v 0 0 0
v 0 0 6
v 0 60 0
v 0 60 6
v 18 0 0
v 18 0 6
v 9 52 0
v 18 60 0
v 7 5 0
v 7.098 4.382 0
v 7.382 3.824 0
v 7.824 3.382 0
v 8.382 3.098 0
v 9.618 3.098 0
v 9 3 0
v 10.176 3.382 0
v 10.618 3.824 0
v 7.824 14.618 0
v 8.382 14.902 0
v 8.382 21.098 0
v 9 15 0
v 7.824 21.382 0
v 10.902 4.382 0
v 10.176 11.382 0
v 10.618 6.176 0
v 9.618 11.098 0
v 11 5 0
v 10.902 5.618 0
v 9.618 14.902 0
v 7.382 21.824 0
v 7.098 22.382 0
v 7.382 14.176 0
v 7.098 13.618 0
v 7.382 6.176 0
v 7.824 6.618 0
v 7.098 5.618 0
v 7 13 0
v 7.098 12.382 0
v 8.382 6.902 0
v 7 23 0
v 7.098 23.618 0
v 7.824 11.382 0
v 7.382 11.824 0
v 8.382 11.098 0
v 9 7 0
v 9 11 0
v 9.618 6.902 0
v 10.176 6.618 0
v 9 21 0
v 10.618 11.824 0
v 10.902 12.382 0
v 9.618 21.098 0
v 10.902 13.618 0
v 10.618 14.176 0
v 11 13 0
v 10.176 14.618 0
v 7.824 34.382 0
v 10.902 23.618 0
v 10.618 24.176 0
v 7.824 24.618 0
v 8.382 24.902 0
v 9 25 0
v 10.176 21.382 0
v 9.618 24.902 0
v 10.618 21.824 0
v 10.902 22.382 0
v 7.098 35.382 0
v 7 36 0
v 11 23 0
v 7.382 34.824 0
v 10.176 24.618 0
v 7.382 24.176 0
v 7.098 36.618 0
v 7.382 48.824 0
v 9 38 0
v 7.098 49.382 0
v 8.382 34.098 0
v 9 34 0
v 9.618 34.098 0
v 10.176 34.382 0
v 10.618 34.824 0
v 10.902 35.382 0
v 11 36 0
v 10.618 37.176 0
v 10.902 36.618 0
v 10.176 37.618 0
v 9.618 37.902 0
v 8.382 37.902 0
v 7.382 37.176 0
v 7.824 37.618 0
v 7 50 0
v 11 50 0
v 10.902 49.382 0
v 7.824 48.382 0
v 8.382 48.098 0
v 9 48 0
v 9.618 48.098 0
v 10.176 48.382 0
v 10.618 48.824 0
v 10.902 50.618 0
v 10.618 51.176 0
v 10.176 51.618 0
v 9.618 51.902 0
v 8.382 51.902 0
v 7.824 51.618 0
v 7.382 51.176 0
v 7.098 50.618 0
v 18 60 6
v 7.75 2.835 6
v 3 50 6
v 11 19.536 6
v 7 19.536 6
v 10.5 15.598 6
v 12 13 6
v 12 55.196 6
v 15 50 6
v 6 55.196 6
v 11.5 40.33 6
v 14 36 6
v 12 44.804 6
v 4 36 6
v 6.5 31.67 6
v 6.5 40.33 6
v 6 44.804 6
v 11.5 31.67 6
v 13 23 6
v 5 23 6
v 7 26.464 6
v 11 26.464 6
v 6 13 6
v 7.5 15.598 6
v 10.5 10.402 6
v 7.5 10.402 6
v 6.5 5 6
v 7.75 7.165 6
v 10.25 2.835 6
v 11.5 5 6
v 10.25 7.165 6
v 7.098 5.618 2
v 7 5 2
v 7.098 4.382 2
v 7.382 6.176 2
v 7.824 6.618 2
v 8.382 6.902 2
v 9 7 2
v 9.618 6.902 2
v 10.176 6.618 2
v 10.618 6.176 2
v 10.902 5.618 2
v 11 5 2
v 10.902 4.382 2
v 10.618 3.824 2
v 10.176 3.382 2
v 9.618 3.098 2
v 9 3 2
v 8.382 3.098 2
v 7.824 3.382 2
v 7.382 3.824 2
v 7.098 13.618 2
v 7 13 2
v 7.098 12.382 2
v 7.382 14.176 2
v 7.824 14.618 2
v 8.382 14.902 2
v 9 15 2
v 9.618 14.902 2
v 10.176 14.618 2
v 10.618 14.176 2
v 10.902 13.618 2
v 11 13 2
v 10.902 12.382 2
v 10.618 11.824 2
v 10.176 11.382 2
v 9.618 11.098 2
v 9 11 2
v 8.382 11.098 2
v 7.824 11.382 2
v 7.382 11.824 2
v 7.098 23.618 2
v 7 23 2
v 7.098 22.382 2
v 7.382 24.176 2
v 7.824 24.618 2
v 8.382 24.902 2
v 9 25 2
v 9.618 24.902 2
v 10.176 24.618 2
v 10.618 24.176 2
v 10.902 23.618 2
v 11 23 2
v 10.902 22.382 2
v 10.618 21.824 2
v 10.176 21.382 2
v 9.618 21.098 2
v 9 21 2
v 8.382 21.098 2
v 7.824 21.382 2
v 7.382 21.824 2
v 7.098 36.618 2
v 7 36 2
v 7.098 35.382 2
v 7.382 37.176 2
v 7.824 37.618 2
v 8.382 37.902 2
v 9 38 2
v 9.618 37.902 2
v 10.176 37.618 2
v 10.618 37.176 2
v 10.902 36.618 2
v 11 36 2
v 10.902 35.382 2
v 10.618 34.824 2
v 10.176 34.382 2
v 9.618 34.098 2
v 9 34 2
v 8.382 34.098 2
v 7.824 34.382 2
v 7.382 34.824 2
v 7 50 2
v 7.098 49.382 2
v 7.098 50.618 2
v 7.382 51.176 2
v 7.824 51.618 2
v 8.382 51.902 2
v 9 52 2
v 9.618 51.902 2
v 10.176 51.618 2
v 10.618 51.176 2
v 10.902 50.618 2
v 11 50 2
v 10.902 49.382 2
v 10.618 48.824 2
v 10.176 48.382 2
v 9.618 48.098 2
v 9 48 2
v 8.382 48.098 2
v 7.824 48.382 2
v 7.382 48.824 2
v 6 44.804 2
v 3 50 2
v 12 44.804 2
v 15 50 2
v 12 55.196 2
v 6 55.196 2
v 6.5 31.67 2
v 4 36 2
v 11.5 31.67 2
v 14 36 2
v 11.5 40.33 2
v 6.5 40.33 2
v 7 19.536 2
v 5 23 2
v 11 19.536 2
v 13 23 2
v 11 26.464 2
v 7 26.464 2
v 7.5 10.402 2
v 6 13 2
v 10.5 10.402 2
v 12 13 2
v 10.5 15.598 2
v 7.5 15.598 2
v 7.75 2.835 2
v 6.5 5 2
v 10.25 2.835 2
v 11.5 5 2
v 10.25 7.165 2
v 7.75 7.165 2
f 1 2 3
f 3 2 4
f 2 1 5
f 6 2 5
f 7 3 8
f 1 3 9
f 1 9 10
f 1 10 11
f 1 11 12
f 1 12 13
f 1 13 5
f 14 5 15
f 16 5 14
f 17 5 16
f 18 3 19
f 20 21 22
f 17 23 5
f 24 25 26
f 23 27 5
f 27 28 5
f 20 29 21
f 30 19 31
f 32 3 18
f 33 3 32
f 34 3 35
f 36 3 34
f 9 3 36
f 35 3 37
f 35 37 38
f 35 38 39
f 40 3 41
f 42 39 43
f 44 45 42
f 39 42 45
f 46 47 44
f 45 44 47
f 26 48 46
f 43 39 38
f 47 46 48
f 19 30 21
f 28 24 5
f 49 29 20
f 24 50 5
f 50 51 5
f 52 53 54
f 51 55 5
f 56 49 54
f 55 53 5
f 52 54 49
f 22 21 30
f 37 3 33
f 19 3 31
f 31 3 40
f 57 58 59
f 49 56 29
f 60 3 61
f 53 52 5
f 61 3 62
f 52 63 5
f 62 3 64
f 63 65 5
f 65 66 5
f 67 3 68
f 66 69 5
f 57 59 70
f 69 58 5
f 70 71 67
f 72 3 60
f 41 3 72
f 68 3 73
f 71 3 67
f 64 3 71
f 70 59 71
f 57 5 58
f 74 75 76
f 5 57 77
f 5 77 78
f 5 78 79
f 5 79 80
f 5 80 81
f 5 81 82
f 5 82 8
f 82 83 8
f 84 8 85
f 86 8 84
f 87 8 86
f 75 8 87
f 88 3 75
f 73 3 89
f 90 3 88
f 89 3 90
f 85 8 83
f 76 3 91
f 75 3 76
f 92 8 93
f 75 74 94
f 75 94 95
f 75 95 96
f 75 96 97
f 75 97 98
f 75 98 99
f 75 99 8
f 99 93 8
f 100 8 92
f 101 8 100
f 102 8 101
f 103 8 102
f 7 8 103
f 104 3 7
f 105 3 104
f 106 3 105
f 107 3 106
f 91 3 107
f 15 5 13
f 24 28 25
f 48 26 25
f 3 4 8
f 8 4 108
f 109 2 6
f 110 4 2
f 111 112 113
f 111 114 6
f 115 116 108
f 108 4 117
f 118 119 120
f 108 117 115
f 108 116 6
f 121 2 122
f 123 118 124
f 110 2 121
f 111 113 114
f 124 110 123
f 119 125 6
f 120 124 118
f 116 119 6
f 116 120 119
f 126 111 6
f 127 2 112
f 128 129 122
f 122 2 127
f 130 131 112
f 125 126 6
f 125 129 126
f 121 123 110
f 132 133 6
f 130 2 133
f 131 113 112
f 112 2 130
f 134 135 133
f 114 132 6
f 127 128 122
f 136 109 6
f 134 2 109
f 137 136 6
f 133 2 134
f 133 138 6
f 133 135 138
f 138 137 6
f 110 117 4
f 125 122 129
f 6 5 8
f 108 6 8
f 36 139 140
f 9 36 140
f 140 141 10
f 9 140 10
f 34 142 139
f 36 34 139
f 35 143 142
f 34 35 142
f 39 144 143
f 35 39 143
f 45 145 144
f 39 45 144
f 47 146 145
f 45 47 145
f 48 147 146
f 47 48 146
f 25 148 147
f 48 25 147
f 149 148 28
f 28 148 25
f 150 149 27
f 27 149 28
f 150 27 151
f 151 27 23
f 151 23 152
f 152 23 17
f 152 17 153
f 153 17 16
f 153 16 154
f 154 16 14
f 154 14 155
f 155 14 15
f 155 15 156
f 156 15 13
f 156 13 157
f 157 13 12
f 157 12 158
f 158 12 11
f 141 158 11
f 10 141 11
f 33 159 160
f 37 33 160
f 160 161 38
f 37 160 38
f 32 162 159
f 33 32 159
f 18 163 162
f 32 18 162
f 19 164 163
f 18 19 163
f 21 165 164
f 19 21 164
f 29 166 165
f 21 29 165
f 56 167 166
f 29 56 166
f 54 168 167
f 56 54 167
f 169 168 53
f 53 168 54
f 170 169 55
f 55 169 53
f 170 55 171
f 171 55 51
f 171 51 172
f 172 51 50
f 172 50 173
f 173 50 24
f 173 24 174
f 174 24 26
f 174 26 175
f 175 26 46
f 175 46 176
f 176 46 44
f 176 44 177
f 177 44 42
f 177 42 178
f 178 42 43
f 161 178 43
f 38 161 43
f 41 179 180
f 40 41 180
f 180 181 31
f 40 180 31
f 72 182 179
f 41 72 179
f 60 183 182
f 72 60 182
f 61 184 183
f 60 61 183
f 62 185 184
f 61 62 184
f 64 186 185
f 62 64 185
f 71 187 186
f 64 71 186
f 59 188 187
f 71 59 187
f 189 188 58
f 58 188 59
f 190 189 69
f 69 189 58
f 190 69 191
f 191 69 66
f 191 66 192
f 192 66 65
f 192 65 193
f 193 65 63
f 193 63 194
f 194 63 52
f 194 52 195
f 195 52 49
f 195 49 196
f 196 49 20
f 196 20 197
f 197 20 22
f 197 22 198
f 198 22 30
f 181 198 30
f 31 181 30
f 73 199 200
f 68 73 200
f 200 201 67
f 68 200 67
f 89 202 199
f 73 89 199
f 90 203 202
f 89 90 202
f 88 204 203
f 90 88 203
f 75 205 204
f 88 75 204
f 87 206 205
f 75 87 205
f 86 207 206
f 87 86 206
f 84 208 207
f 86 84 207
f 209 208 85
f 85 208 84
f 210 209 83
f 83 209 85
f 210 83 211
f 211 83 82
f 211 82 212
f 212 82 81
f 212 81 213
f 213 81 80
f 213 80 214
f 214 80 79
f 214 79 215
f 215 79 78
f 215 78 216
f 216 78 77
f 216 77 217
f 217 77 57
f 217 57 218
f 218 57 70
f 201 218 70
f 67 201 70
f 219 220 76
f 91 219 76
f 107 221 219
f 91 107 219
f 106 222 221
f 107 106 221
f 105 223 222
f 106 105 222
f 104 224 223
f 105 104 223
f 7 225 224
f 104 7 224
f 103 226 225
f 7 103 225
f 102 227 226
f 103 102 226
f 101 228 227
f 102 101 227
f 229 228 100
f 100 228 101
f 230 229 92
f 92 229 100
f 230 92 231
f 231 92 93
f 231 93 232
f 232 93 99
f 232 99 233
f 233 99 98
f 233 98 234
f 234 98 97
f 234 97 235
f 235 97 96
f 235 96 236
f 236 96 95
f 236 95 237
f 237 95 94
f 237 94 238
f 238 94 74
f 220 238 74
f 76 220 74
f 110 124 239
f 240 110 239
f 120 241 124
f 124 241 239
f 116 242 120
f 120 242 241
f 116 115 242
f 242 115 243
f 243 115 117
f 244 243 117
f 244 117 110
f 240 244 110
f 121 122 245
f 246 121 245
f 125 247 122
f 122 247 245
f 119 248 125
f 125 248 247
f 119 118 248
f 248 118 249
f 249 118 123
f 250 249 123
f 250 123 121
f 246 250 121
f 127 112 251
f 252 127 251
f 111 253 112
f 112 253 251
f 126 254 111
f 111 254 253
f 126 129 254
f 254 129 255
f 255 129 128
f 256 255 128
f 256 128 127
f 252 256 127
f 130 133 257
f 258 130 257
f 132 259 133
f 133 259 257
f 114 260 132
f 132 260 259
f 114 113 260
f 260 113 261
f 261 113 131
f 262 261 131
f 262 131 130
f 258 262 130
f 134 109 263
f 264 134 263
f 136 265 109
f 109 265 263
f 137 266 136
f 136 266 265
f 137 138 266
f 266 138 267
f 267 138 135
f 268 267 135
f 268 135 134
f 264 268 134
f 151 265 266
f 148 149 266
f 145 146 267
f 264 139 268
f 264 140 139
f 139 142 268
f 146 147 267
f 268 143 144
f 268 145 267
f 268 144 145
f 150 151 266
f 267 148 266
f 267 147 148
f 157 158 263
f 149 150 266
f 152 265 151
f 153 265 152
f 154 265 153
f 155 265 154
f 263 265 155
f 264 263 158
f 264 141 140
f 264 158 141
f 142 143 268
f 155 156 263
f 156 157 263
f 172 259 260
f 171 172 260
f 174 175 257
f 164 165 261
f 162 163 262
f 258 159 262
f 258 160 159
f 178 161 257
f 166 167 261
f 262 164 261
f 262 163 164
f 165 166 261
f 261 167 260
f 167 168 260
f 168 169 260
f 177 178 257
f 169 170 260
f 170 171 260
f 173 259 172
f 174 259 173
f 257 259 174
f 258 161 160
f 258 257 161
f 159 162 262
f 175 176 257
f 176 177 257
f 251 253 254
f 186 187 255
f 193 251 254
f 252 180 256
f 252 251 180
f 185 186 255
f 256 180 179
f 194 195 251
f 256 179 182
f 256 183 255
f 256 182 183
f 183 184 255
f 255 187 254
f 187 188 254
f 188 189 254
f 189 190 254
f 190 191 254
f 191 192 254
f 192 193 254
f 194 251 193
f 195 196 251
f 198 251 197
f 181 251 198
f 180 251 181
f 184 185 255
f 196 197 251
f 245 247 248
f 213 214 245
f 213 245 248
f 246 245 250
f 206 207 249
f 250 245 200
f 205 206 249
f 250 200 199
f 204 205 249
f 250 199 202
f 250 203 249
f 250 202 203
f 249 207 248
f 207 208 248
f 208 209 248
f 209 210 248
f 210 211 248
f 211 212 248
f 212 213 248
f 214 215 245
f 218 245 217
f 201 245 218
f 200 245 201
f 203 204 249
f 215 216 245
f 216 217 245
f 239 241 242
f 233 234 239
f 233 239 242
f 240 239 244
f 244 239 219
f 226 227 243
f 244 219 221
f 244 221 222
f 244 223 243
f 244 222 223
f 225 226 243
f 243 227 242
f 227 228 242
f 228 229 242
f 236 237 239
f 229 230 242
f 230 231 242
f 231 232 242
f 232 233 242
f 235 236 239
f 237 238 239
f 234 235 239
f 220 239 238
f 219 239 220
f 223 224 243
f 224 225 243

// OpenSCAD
module hex_hole(h_trap,h_hole,r_trap,r_hole,x,y,z)
{
translate([x,y,z+h_hole])
{
	cylinder(h = h_trap, r = r_trap, $fn = 6);
}
translate([x,y,z])
{
	cylinder(h = h_hole, r = r_hole, $fn = 20);
}
}

width=18;
length=60;
h_hole=2;
h_trap=4;
r_trap=3;
r_hole=2;
spacer=4;
explode=false;
if (explode)
{
cube(size = [width,length,h_hole+h_trap], center = false);
translate([0,0,10]){
hex_hole(h_trap,h_hole,r_trap,r_hole,width/2,4,0);
hex_hole(h_trap,h_hole,r_trap+1,r_hole,width/2,12,0);
hex_hole(h_trap,h_hole,r_trap+2,r_hole,width/2,22,0);
hex_hole(h_trap,h_hole,r_trap+3,r_hole,width/2,33,0);}
}
else
{
difference() {
cube(size = [width,length,h_hole+h_trap], center = false);
hex_hole(h_trap,h_hole,r_trap-0.5,r_hole,width/2,5,0);
hex_hole(h_trap,h_hole,r_trap,r_hole,width/2,13,0);
hex_hole(h_trap,h_hole,r_trap+1,r_hole,width/2,23,0);
hex_hole(h_trap,h_hole,r_trap+2,r_hole,width/2,36,0);
hex_hole(h_trap,h_hole,r_trap+3,r_hole,width/2,50,0);
}
}
